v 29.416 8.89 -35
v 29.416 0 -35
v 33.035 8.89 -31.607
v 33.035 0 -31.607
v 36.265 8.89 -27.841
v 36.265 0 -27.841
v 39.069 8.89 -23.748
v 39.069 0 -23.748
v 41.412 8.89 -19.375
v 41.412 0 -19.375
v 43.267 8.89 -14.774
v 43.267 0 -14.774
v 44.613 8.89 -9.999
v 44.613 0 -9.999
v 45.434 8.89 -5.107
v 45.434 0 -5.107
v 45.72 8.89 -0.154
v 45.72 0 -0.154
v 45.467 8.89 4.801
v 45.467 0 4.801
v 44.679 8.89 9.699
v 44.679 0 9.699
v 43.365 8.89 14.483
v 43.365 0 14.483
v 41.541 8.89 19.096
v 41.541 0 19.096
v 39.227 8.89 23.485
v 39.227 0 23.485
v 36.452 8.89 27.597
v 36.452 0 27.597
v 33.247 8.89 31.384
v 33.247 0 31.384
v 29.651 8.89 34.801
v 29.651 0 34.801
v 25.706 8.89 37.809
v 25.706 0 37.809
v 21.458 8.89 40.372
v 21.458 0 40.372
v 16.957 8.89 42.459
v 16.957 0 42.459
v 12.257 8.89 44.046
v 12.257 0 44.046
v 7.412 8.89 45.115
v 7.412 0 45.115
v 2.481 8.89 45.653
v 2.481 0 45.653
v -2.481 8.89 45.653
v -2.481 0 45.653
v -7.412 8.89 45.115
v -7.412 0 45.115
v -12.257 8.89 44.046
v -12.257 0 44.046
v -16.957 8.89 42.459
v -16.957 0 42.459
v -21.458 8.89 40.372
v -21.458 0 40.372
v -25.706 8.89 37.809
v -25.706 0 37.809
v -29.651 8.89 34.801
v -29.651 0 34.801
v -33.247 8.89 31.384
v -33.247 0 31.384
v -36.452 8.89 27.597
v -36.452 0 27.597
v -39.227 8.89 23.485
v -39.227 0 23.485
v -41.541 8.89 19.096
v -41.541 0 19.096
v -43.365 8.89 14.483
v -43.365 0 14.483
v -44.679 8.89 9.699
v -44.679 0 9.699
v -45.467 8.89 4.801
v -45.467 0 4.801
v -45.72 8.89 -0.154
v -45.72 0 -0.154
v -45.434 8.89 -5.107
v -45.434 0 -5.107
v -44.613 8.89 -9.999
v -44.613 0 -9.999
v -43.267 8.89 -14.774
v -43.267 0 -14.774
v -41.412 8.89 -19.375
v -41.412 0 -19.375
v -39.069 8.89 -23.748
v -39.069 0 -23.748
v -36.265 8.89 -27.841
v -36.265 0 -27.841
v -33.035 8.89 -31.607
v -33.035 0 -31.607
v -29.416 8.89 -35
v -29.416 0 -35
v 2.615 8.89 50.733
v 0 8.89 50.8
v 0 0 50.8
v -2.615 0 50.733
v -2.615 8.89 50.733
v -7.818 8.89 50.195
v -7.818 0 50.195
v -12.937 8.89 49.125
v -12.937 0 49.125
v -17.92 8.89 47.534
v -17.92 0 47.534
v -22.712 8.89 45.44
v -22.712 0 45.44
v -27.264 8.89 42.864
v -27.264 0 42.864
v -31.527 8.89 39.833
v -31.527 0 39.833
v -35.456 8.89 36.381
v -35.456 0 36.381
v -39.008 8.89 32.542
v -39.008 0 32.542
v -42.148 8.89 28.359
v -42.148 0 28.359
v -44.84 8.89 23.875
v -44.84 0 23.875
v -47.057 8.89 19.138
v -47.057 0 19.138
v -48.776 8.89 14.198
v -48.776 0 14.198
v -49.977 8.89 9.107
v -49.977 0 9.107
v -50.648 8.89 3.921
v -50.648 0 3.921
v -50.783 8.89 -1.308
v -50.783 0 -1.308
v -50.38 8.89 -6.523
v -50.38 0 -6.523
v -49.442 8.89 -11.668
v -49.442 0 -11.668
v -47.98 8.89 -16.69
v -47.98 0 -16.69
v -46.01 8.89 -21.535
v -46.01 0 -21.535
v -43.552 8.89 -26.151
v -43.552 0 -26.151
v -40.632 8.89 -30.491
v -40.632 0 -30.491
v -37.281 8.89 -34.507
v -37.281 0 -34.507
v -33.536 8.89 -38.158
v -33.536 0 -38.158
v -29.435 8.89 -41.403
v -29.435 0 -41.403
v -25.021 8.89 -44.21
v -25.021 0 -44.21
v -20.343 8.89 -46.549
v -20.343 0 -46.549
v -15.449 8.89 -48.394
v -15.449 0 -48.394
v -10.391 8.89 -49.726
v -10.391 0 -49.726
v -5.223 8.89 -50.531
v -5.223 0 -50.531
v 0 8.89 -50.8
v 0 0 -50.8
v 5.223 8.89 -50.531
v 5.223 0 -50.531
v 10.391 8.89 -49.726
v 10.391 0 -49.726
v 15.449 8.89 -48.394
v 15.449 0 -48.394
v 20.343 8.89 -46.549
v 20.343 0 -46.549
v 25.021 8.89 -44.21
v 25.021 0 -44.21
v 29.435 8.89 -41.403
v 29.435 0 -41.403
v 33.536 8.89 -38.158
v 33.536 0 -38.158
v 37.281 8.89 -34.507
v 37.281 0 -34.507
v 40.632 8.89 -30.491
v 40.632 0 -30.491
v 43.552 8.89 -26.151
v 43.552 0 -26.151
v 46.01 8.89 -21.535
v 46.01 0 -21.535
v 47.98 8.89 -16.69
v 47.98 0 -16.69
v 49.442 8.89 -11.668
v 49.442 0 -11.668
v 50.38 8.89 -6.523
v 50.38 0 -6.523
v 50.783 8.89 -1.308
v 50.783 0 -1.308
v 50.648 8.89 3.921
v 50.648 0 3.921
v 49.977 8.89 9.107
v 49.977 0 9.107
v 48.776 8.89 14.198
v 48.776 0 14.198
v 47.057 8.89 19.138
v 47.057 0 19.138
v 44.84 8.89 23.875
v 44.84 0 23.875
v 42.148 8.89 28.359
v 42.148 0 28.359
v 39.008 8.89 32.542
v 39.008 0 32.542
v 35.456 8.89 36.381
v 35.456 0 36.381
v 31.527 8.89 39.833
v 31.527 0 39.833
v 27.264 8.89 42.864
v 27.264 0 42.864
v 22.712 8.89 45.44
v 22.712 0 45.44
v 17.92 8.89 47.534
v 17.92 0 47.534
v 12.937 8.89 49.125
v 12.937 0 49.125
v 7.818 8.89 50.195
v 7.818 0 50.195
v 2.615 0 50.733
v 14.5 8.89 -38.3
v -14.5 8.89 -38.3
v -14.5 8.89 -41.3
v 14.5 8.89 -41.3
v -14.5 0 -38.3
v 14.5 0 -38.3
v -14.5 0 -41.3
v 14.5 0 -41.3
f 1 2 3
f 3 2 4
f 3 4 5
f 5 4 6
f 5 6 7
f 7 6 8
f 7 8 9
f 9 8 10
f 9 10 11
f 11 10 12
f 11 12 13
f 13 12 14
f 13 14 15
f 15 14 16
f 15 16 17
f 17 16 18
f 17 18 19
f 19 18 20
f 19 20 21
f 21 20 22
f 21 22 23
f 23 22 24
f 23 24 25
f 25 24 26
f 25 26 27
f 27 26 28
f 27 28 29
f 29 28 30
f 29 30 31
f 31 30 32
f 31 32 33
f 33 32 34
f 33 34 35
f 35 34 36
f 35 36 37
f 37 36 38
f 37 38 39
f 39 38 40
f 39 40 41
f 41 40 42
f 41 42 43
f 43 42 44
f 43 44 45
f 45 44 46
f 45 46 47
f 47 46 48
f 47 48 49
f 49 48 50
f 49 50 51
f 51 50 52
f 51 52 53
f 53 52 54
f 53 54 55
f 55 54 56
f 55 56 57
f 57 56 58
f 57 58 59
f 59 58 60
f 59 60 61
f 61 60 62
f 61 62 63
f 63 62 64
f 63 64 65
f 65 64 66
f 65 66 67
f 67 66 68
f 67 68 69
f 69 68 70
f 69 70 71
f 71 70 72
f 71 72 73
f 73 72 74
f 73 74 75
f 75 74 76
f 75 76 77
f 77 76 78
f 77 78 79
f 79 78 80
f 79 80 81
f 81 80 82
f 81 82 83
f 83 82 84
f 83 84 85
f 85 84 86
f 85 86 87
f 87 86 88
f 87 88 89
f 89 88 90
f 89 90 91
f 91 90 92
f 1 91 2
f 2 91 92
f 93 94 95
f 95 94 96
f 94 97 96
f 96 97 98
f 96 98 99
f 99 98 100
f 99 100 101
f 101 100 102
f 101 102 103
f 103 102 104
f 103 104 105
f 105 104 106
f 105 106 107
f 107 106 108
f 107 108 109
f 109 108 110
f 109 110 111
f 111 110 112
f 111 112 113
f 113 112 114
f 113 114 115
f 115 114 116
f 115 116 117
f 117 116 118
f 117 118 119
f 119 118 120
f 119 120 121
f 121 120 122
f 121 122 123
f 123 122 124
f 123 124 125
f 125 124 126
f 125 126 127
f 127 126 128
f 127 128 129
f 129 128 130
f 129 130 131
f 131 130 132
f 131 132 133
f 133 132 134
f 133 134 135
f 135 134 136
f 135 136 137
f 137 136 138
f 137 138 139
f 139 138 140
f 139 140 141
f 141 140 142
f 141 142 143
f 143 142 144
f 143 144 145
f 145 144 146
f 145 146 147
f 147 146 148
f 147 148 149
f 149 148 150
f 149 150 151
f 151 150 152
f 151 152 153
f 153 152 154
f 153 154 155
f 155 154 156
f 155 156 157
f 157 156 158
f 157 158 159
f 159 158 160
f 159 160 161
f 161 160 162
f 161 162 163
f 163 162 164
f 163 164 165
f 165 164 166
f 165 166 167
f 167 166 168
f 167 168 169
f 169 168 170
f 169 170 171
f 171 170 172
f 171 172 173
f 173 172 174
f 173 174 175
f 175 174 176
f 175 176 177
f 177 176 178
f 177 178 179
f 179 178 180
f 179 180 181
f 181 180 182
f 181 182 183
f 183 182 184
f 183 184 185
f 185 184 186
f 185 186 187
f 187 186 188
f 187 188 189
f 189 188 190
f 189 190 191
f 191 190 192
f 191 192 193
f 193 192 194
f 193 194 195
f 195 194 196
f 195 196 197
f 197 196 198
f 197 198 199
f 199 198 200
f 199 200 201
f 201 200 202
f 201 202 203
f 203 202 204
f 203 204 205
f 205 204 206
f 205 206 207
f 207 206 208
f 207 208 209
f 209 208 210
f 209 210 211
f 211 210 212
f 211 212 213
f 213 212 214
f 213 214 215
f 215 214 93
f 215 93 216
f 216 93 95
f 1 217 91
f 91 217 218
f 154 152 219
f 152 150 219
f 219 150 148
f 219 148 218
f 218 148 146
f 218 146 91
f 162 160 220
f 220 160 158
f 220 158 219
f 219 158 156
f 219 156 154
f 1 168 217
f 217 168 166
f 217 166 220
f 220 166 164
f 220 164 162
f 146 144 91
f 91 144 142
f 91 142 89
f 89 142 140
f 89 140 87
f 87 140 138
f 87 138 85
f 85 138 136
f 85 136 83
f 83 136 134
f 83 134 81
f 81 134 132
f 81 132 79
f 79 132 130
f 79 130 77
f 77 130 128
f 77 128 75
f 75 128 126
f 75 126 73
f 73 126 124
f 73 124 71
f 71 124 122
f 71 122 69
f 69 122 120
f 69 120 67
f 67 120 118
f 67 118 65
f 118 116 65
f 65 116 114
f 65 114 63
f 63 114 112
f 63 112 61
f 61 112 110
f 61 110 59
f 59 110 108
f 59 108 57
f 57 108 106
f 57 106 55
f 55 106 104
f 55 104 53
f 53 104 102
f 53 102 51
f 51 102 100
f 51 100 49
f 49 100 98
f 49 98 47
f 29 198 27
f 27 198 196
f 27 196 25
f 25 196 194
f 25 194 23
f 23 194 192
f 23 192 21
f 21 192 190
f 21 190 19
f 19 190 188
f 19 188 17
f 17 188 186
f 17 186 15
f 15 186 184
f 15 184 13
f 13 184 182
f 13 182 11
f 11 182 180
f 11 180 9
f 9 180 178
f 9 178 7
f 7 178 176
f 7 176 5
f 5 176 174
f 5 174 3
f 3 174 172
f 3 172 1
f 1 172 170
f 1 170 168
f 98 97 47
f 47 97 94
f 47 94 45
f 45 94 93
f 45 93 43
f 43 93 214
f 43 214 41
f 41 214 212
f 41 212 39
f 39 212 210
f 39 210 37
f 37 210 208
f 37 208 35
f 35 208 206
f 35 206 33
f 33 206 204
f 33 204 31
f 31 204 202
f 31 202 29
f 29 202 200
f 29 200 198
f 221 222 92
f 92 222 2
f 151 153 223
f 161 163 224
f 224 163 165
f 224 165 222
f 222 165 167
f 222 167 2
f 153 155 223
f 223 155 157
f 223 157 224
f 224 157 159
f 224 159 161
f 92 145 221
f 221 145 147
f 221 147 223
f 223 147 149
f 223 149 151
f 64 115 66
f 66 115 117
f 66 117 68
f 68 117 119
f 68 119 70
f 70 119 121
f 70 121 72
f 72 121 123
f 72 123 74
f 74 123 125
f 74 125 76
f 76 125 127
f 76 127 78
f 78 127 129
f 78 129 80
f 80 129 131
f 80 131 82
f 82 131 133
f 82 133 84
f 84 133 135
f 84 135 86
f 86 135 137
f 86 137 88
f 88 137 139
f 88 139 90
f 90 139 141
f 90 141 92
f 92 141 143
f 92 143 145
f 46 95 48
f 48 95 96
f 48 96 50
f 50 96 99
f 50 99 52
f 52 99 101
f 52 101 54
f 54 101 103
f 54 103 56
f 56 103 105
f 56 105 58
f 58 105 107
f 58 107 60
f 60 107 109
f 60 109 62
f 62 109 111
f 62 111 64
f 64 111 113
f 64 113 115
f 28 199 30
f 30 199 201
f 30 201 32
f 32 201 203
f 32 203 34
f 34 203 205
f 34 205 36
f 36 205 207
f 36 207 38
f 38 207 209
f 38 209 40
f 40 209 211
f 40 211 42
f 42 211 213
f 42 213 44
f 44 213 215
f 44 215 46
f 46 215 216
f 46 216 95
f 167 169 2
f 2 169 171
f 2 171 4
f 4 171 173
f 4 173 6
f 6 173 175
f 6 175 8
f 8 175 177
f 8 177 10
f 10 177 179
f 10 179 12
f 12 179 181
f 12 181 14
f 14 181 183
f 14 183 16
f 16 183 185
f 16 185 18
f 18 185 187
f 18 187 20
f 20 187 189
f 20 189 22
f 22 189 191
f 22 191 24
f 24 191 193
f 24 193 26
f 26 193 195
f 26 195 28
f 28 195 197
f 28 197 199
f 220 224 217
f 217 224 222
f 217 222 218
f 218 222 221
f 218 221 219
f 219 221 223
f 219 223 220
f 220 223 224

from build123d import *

# Parameters (mm, degrees)
SKETCH1_R           = 50.8
BOSS_EXTRUDE1_DEPTH = 8.89
SKETCH2_W           = 29
SKETCH2_H           = 3
CUT_EXTRUDE2_DEPTH  = 127


with BuildPart() as part:
    # Sketch1 → Boss-Extrude1 (new body)
    with BuildSketch(Plane(origin=(0, 0, 0), x_dir=(1, 0, 0), z_dir=(0, 1, 0))):
        with Locations(Location((0, 0, 0), (0, 0, 90))):
            Circle(SKETCH1_R)
        with BuildLine():
            Line((-29.416294804, 35), (29.416294804, 35))
            ThreePointArc((29.416294804, 35), (0, -45.72), (-29.416294804, 35))
        make_face(mode=Mode.SUBTRACT)
    extrude(amount=BOSS_EXTRUDE1_DEPTH)

    # Sketch2 → Cut-Extrude2 (cut)
    with BuildSketch(Plane(origin=(0, 8.89, 0), x_dir=(1, 0, 0), z_dir=(0, 1, 0))):
        with Locations((0, 39.8)):
            Rectangle(SKETCH2_W, SKETCH2_H)
    extrude(amount=-CUT_EXTRUDE2_DEPTH, mode=Mode.SUBTRACT)


solid = part.part
